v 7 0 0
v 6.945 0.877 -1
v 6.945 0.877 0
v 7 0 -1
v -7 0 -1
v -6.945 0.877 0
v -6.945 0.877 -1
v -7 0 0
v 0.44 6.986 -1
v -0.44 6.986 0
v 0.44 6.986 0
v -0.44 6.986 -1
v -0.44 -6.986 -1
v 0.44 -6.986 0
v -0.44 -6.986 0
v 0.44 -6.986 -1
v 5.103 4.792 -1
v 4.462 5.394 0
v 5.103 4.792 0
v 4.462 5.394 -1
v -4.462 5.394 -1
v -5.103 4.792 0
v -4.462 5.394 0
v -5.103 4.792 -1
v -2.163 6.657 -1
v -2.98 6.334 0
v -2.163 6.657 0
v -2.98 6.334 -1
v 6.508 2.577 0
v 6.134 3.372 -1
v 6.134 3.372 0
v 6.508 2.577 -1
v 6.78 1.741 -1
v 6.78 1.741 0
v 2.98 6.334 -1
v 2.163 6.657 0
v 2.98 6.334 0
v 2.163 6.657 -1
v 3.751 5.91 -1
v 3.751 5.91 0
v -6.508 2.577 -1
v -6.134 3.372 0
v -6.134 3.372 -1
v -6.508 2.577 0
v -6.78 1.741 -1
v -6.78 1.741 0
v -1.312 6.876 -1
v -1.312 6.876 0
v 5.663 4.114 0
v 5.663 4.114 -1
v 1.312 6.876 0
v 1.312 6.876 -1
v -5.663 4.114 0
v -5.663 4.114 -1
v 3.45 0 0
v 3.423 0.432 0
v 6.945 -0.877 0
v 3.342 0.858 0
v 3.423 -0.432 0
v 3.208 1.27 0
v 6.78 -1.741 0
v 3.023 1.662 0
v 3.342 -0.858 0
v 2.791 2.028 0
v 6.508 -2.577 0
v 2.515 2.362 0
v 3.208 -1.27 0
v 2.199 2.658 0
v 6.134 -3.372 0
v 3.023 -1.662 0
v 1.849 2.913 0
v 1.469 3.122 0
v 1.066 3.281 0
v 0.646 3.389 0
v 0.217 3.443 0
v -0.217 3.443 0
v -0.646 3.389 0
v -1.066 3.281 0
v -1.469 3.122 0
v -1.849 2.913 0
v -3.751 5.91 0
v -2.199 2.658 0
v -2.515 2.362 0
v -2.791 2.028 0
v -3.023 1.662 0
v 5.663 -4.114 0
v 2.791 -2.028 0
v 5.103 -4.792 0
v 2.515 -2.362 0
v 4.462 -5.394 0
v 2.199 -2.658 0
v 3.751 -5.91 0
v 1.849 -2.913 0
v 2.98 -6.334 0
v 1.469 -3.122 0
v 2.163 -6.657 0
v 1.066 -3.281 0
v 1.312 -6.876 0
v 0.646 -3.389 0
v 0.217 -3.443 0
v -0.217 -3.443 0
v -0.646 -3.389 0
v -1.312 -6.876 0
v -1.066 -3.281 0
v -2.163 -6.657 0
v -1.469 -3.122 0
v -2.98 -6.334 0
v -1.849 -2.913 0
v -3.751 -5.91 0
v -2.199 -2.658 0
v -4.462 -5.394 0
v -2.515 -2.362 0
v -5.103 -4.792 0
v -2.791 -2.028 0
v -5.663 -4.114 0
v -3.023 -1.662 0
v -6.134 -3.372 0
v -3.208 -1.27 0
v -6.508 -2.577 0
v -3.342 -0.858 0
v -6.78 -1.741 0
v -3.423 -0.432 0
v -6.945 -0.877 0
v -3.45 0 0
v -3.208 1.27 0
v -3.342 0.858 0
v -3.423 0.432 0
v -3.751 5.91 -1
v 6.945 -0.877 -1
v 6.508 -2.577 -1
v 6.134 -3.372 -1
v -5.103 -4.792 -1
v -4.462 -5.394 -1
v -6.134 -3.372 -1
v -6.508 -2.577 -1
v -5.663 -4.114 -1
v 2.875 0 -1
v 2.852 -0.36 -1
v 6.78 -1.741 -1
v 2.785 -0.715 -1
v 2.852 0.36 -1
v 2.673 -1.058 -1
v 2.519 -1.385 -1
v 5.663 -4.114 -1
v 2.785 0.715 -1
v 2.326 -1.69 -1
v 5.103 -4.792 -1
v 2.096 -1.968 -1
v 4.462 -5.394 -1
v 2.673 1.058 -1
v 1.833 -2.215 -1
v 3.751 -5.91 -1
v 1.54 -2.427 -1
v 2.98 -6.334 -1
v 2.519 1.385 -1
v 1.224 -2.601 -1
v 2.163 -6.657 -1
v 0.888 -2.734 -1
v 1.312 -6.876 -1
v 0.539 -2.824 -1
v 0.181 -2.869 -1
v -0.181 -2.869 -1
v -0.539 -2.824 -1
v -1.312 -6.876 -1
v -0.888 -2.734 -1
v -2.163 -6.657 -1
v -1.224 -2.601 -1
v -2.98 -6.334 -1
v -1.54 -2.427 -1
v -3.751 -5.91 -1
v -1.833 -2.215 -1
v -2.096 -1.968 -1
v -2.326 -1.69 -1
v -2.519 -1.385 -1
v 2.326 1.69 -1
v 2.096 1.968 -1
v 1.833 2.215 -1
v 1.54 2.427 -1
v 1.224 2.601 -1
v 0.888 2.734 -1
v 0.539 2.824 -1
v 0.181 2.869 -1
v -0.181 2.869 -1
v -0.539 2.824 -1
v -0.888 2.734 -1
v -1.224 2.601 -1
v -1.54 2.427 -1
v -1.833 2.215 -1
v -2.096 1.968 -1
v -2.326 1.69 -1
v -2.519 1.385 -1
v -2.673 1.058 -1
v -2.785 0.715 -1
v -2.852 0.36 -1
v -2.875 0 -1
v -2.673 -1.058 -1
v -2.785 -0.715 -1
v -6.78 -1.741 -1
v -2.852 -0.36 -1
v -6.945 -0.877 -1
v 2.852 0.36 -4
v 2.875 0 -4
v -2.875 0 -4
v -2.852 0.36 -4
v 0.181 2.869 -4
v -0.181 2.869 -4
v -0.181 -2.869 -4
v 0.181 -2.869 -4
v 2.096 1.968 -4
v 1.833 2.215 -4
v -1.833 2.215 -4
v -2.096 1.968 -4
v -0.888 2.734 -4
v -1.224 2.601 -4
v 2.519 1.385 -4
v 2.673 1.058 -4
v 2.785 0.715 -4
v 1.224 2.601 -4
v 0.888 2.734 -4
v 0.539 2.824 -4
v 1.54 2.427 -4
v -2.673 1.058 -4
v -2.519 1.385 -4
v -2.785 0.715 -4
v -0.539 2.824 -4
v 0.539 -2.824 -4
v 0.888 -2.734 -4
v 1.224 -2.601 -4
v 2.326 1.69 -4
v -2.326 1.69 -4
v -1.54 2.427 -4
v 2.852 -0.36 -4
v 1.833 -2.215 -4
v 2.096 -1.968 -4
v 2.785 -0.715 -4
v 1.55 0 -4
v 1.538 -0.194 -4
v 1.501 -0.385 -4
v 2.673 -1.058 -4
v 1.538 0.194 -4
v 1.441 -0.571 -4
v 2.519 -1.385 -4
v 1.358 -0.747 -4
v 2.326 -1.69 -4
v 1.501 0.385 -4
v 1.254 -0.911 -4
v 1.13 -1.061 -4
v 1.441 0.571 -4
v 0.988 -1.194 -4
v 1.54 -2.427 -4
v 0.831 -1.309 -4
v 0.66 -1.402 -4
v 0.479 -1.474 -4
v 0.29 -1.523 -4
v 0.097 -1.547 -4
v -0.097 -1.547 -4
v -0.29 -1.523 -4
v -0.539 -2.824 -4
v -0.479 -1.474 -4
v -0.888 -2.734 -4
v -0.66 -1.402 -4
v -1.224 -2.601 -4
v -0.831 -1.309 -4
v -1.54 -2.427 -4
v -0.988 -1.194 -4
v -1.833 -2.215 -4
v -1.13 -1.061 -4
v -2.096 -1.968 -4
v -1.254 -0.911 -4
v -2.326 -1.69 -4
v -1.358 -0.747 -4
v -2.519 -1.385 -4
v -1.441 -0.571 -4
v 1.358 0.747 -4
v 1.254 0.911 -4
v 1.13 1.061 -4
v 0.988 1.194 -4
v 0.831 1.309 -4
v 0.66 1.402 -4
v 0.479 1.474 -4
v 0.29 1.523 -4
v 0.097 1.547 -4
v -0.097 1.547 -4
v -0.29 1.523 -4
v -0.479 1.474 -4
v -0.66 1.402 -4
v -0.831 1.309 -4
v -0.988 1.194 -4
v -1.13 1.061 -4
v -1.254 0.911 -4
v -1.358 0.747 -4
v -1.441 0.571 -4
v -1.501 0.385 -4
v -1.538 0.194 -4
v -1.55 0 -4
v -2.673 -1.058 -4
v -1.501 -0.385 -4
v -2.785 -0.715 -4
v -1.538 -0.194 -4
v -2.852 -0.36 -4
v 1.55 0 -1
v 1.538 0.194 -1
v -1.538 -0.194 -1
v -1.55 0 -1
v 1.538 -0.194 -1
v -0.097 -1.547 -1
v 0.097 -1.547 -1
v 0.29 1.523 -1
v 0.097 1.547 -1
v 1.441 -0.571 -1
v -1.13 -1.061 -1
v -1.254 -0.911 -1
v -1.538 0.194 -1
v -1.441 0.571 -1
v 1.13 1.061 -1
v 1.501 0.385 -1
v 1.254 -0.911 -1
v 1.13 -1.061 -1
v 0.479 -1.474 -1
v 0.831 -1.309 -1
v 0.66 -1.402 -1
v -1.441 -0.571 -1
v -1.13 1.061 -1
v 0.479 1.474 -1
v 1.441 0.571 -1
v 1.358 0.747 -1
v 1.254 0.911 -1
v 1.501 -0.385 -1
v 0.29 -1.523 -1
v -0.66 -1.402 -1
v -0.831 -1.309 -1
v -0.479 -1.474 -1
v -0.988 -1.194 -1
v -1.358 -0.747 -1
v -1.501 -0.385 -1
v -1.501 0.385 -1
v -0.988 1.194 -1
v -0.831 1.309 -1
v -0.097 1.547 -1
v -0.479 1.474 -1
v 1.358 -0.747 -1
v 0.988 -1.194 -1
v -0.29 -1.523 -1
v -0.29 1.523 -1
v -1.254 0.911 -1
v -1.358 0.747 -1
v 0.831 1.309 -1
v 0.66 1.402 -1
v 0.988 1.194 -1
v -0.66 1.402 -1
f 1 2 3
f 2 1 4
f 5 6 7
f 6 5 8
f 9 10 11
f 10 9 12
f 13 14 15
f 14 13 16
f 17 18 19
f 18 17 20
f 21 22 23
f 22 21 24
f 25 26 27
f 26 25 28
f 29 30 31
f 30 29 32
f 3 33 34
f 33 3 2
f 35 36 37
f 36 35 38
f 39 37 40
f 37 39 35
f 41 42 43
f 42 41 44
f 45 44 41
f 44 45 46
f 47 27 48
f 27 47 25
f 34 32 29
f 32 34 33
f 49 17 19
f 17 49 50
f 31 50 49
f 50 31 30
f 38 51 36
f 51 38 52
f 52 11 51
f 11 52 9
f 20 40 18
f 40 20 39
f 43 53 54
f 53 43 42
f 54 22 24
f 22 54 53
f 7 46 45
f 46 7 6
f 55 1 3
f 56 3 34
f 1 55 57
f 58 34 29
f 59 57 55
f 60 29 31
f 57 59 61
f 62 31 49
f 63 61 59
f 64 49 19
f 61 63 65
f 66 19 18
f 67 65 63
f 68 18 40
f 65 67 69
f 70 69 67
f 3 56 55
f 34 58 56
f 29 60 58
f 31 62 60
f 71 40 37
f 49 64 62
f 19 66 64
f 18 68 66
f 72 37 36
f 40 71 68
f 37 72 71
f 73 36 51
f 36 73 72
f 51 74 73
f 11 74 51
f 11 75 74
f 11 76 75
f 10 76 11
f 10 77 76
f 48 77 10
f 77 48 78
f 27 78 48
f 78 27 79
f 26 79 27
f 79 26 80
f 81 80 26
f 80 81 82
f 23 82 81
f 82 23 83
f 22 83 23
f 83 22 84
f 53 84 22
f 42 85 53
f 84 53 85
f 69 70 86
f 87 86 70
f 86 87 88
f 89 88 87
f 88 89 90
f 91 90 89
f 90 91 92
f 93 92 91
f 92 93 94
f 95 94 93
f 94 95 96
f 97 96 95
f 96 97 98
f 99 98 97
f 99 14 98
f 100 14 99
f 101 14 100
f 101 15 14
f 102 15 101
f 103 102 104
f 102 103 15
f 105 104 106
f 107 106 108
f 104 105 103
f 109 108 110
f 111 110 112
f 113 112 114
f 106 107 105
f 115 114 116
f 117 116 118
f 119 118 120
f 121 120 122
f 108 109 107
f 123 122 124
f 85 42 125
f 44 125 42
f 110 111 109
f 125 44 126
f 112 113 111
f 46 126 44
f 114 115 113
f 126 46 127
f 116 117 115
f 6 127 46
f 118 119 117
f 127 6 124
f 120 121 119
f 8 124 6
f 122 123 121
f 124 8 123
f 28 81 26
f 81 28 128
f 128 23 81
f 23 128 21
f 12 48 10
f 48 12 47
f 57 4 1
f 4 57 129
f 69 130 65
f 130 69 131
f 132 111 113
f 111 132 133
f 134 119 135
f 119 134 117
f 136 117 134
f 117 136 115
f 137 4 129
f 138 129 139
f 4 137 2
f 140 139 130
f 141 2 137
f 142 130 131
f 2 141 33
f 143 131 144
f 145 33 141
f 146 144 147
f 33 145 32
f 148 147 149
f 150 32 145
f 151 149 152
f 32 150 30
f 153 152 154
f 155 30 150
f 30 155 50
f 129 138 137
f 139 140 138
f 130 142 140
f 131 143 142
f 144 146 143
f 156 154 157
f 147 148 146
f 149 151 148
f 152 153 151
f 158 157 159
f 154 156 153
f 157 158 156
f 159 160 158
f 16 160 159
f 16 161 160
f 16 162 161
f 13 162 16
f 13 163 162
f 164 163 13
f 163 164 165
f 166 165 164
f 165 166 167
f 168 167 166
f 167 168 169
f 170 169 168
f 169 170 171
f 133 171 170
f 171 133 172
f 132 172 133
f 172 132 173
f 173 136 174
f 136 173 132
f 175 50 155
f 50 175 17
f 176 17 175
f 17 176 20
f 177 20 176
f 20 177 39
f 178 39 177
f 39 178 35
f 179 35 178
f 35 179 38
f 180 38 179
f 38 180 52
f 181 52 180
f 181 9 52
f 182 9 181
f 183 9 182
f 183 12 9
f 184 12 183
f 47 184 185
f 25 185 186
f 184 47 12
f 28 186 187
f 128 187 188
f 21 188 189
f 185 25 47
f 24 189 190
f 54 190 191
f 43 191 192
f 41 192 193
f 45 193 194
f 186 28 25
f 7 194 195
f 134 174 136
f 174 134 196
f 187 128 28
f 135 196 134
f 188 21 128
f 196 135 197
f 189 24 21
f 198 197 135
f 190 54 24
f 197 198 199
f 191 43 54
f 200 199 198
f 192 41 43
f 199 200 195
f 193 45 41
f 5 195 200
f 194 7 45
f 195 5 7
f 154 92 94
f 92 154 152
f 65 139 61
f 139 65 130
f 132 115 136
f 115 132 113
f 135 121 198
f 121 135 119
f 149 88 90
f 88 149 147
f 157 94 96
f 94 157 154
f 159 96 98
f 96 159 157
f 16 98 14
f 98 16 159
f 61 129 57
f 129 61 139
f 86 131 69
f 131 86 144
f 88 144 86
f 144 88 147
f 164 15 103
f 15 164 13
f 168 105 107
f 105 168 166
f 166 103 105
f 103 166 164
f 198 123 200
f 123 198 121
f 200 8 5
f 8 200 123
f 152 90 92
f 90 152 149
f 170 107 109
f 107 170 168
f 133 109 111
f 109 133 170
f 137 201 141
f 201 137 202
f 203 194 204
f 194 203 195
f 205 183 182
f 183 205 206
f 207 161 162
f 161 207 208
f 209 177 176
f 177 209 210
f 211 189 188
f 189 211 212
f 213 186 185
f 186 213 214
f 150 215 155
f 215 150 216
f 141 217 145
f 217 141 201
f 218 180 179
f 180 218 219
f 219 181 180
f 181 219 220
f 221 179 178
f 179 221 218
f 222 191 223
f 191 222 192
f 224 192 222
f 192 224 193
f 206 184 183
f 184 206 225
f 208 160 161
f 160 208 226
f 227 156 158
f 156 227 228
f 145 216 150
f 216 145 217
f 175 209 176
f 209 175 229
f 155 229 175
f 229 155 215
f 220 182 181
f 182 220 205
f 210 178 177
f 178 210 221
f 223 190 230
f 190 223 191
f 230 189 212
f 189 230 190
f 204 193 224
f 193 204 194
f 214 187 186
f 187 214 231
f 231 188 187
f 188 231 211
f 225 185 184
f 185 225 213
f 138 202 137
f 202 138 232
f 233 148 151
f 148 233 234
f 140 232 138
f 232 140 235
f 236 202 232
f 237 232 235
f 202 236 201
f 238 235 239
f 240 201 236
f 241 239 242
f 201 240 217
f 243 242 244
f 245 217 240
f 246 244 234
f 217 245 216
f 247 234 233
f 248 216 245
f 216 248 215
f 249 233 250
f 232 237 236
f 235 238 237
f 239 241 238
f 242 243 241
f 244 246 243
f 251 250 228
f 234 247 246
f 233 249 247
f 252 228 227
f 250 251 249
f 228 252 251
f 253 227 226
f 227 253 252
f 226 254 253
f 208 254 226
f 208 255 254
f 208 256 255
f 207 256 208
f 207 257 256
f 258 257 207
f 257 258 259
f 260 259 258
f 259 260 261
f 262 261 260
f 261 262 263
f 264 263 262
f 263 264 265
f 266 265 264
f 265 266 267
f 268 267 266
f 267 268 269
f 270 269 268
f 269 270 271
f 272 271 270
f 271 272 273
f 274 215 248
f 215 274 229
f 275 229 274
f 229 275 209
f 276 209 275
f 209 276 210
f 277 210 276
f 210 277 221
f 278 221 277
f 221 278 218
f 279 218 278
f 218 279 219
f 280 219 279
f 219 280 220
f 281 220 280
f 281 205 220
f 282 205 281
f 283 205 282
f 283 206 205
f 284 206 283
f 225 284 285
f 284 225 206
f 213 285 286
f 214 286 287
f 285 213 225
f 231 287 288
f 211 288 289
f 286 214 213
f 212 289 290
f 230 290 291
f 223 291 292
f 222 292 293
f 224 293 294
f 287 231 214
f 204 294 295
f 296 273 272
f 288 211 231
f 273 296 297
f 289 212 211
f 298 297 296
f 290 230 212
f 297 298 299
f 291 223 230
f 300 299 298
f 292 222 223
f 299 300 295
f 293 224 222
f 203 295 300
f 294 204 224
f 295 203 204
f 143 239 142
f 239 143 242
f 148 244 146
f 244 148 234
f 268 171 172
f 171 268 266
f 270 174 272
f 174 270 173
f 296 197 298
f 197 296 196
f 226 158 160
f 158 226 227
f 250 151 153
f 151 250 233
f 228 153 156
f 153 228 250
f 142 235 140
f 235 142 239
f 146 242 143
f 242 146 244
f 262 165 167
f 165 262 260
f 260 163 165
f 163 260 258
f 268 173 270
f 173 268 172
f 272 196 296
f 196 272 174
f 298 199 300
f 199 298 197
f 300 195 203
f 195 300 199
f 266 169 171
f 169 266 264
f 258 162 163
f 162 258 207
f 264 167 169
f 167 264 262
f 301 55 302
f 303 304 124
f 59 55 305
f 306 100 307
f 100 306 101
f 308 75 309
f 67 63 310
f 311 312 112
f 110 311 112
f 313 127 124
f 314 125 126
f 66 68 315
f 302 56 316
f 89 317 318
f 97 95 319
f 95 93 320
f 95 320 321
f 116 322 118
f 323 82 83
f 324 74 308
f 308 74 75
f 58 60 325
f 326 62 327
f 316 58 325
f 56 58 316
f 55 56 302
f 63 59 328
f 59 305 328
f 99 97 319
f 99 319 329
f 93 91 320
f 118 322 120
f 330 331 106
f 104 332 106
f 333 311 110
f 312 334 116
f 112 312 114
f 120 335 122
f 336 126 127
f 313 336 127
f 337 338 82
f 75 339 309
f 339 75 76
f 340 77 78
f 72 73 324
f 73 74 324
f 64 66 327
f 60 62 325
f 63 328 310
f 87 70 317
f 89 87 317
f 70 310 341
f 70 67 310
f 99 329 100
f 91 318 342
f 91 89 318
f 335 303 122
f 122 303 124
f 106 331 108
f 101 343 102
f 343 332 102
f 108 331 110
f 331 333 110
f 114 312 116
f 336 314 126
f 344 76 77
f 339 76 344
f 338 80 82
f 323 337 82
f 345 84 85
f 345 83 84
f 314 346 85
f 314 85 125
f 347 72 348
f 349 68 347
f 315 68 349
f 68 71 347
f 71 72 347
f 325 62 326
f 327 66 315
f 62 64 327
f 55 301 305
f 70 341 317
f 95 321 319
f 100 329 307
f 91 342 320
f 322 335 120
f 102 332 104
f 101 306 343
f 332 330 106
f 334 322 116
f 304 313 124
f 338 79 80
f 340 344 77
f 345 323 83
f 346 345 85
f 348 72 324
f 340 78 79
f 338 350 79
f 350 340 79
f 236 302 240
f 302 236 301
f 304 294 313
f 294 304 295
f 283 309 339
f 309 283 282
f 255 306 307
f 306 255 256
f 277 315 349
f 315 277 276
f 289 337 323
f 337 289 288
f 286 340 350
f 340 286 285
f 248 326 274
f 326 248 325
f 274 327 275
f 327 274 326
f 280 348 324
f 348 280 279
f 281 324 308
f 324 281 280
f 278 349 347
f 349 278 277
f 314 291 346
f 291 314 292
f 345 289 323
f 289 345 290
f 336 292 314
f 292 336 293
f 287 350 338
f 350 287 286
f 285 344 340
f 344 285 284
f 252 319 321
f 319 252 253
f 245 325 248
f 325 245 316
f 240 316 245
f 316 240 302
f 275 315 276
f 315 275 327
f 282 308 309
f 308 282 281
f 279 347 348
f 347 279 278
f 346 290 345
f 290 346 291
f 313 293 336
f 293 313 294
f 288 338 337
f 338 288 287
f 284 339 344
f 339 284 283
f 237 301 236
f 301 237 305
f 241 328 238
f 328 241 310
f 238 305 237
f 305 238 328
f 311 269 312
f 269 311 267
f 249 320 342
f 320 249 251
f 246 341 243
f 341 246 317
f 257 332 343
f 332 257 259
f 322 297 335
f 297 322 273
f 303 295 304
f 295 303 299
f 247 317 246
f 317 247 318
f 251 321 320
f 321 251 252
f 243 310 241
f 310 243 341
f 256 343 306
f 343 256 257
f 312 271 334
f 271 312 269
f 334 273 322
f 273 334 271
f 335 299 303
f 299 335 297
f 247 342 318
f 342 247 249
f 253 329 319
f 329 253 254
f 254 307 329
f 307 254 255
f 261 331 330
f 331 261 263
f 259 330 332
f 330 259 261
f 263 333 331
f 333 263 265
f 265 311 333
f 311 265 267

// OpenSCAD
$fn = 50;


difference() {
	union() {
		translate(v = [0, 0, -1.0000000000]) {
			cylinder(h = 1.0000000000, r = 7.0000000000);
		}
		translate(v = [0, 0, -4.0000000000]) {
			cylinder(h = 4.0000000000, r = 2.8750000000);
		}
	}
	union() {
		translate(v = [0, 0, 0]) {
			rotate(a = [0, 0, 0]) {
				difference() {
					union() {
						translate(v = [0, 0, -4.0000000000]) {
							cylinder(h = 4.0000000000, r = 1.2500000000);
						}
						translate(v = [0, 0, -1.0000000000]) {
							cylinder(h = 1.0000000000, r1 = 1.5500000000, r2 = 3.4500000000);
						}
						translate(v = [0, 0, -4.0000000000]) {
							cylinder(h = 4.0000000000, r = 1.5500000000);
						}
						translate(v = [0, 0, -4.0000000000]) {
							cylinder(h = 4.0000000000, r = 1.2500000000);
						}
					}
					union();
				}
			}
		}
	}
}
